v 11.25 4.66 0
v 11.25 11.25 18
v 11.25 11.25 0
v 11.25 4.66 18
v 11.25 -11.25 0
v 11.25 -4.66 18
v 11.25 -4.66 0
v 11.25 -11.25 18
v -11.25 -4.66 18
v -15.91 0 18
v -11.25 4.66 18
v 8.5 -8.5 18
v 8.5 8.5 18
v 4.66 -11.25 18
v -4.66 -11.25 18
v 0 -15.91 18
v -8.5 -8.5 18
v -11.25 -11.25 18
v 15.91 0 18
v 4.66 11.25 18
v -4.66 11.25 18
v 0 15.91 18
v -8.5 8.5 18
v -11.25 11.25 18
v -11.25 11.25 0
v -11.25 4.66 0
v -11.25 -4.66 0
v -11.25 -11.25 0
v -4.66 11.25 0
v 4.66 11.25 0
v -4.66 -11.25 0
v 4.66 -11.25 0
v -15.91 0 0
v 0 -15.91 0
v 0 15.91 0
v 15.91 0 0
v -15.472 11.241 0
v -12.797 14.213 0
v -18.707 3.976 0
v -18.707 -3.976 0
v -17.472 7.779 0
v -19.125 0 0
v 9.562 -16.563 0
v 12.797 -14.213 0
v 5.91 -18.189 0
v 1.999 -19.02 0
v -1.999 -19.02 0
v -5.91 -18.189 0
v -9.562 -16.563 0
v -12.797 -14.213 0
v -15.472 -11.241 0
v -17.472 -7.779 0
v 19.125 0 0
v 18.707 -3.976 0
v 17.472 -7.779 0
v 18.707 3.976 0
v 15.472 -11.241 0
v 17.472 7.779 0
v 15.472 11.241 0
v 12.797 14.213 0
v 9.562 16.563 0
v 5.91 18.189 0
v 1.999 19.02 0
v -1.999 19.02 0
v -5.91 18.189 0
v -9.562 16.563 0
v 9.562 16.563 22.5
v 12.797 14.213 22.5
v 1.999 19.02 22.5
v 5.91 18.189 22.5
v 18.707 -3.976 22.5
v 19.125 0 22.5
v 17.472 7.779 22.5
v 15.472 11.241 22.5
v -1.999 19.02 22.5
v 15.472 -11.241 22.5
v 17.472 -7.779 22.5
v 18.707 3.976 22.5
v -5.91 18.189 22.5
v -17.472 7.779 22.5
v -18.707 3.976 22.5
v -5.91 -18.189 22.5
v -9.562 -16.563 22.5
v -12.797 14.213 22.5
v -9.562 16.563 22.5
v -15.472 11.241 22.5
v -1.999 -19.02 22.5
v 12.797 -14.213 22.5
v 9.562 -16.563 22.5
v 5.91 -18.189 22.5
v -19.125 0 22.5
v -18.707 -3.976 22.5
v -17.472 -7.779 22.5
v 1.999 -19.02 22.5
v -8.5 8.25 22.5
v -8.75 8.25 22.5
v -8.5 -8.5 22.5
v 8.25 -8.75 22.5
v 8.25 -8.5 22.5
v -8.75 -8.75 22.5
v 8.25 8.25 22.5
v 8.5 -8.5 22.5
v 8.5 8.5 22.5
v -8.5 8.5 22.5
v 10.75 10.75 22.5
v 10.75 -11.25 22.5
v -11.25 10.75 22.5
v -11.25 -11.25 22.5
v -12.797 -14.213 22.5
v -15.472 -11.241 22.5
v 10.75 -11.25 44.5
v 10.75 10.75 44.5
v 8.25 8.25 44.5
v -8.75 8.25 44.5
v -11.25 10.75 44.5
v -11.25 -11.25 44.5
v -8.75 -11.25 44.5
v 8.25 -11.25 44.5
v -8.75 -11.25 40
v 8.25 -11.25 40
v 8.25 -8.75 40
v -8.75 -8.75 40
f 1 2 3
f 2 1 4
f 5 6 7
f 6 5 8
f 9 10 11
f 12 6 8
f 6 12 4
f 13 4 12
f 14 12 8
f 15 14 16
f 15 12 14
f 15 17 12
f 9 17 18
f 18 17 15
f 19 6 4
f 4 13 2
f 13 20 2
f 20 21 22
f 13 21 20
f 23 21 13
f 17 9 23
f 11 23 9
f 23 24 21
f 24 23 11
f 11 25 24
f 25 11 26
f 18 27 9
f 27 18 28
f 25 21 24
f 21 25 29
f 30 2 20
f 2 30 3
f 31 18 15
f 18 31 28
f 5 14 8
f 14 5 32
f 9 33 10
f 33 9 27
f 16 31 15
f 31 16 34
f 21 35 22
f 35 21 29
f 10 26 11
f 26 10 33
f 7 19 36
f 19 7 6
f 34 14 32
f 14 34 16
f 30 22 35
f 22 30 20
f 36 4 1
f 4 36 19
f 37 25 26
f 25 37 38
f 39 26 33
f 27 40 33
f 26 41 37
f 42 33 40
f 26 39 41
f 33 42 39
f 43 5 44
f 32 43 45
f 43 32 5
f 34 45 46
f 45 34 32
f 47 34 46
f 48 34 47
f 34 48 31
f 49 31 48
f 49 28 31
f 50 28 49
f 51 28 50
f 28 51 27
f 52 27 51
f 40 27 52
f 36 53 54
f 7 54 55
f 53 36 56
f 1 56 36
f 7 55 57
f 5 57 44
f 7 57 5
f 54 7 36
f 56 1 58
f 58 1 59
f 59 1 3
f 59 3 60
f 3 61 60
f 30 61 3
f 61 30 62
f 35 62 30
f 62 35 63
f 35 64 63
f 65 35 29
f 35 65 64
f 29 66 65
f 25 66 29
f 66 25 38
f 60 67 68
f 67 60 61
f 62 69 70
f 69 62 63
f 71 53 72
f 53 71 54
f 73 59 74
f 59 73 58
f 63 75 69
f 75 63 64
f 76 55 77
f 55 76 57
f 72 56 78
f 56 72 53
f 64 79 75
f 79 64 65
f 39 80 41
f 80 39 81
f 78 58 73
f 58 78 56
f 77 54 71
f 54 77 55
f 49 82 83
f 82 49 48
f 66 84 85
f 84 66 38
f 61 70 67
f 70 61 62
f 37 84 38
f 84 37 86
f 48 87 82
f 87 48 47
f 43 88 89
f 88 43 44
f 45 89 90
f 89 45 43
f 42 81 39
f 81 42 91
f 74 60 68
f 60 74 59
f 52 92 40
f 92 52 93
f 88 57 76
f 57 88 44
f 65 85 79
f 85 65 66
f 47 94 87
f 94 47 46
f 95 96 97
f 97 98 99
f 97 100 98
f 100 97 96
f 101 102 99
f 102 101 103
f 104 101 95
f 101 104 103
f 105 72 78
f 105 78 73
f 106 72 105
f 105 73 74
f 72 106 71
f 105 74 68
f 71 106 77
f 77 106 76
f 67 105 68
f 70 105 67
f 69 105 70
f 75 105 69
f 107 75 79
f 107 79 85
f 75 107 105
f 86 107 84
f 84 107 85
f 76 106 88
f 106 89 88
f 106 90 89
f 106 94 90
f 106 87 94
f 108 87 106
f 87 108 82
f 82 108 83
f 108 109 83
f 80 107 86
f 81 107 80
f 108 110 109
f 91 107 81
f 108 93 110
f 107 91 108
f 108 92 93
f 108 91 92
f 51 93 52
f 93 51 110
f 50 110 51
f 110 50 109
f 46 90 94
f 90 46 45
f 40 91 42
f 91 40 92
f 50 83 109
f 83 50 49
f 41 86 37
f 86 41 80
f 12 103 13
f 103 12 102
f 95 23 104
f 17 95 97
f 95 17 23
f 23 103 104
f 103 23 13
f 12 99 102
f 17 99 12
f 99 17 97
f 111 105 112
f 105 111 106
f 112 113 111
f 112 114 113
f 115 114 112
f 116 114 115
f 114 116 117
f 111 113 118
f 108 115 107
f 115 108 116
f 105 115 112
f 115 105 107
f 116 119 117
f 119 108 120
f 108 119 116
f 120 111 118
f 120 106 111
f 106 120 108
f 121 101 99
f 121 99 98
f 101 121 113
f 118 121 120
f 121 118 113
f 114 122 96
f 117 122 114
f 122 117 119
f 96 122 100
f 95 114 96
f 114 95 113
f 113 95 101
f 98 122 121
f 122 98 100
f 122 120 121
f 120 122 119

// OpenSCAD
wall  = 2.5;
tower_width = 22;
margin = 0.5;
tower_width_with_margin = tower_width + margin;
height = 10;
tower_diagonal = sqrt(2)*tower_width;

cam_platform = 25;
no_of_star_tips = 8;

module tower(h) {
    difference() {
        cube([tower_width, tower_width, h ] );
        translate( [wall, wall, -h] )
            cube([tower_width-(2*wall), tower_width-(2*wall), 3*h]);
    }

}

module star() {
    for (n = [0:1:no_of_star_tips]) {
        rotate( [0, 0, n*(360/no_of_star_tips)] )
            translate([ -0.5*tower_width_with_margin, -0.5*tower_width_with_margin, 0 ] )
                cube( [ tower_width_with_margin, tower_width_with_margin, tower_width_with_margin ] );
    }
}

module cap1() {
    difference() {
        cylinder( d = 1.7*tower_width_with_margin, h = tower_width_with_margin);
        //star that enables different angles of rotation of the cam around the z-axis
        translate([0, 0, -0.2*tower_width_with_margin]) star();
        translate([(-1/2)*tower_width+wall, (-1/2)*tower_width+wall, 0.2*tower_width_with_margin])
            cube([tower_width-(2*wall), tower_width-(2*wall), tower_width]);

    }
    
    difference() {
        translate( [ -0.5*tower_width_with_margin, -0.5*tower_width_with_margin, tower_width_with_margin ] )
            tower(h = tower_width );
        
        translate([(-1/2)*tower_width_with_margin+wall, (-1/2)*tower_width_with_margin-1, 2*tower_width_with_margin-2*wall])
            cube([ tower_width-(2*wall), wall+2, 2*wall+1 ]);
    }
}

cap1();
